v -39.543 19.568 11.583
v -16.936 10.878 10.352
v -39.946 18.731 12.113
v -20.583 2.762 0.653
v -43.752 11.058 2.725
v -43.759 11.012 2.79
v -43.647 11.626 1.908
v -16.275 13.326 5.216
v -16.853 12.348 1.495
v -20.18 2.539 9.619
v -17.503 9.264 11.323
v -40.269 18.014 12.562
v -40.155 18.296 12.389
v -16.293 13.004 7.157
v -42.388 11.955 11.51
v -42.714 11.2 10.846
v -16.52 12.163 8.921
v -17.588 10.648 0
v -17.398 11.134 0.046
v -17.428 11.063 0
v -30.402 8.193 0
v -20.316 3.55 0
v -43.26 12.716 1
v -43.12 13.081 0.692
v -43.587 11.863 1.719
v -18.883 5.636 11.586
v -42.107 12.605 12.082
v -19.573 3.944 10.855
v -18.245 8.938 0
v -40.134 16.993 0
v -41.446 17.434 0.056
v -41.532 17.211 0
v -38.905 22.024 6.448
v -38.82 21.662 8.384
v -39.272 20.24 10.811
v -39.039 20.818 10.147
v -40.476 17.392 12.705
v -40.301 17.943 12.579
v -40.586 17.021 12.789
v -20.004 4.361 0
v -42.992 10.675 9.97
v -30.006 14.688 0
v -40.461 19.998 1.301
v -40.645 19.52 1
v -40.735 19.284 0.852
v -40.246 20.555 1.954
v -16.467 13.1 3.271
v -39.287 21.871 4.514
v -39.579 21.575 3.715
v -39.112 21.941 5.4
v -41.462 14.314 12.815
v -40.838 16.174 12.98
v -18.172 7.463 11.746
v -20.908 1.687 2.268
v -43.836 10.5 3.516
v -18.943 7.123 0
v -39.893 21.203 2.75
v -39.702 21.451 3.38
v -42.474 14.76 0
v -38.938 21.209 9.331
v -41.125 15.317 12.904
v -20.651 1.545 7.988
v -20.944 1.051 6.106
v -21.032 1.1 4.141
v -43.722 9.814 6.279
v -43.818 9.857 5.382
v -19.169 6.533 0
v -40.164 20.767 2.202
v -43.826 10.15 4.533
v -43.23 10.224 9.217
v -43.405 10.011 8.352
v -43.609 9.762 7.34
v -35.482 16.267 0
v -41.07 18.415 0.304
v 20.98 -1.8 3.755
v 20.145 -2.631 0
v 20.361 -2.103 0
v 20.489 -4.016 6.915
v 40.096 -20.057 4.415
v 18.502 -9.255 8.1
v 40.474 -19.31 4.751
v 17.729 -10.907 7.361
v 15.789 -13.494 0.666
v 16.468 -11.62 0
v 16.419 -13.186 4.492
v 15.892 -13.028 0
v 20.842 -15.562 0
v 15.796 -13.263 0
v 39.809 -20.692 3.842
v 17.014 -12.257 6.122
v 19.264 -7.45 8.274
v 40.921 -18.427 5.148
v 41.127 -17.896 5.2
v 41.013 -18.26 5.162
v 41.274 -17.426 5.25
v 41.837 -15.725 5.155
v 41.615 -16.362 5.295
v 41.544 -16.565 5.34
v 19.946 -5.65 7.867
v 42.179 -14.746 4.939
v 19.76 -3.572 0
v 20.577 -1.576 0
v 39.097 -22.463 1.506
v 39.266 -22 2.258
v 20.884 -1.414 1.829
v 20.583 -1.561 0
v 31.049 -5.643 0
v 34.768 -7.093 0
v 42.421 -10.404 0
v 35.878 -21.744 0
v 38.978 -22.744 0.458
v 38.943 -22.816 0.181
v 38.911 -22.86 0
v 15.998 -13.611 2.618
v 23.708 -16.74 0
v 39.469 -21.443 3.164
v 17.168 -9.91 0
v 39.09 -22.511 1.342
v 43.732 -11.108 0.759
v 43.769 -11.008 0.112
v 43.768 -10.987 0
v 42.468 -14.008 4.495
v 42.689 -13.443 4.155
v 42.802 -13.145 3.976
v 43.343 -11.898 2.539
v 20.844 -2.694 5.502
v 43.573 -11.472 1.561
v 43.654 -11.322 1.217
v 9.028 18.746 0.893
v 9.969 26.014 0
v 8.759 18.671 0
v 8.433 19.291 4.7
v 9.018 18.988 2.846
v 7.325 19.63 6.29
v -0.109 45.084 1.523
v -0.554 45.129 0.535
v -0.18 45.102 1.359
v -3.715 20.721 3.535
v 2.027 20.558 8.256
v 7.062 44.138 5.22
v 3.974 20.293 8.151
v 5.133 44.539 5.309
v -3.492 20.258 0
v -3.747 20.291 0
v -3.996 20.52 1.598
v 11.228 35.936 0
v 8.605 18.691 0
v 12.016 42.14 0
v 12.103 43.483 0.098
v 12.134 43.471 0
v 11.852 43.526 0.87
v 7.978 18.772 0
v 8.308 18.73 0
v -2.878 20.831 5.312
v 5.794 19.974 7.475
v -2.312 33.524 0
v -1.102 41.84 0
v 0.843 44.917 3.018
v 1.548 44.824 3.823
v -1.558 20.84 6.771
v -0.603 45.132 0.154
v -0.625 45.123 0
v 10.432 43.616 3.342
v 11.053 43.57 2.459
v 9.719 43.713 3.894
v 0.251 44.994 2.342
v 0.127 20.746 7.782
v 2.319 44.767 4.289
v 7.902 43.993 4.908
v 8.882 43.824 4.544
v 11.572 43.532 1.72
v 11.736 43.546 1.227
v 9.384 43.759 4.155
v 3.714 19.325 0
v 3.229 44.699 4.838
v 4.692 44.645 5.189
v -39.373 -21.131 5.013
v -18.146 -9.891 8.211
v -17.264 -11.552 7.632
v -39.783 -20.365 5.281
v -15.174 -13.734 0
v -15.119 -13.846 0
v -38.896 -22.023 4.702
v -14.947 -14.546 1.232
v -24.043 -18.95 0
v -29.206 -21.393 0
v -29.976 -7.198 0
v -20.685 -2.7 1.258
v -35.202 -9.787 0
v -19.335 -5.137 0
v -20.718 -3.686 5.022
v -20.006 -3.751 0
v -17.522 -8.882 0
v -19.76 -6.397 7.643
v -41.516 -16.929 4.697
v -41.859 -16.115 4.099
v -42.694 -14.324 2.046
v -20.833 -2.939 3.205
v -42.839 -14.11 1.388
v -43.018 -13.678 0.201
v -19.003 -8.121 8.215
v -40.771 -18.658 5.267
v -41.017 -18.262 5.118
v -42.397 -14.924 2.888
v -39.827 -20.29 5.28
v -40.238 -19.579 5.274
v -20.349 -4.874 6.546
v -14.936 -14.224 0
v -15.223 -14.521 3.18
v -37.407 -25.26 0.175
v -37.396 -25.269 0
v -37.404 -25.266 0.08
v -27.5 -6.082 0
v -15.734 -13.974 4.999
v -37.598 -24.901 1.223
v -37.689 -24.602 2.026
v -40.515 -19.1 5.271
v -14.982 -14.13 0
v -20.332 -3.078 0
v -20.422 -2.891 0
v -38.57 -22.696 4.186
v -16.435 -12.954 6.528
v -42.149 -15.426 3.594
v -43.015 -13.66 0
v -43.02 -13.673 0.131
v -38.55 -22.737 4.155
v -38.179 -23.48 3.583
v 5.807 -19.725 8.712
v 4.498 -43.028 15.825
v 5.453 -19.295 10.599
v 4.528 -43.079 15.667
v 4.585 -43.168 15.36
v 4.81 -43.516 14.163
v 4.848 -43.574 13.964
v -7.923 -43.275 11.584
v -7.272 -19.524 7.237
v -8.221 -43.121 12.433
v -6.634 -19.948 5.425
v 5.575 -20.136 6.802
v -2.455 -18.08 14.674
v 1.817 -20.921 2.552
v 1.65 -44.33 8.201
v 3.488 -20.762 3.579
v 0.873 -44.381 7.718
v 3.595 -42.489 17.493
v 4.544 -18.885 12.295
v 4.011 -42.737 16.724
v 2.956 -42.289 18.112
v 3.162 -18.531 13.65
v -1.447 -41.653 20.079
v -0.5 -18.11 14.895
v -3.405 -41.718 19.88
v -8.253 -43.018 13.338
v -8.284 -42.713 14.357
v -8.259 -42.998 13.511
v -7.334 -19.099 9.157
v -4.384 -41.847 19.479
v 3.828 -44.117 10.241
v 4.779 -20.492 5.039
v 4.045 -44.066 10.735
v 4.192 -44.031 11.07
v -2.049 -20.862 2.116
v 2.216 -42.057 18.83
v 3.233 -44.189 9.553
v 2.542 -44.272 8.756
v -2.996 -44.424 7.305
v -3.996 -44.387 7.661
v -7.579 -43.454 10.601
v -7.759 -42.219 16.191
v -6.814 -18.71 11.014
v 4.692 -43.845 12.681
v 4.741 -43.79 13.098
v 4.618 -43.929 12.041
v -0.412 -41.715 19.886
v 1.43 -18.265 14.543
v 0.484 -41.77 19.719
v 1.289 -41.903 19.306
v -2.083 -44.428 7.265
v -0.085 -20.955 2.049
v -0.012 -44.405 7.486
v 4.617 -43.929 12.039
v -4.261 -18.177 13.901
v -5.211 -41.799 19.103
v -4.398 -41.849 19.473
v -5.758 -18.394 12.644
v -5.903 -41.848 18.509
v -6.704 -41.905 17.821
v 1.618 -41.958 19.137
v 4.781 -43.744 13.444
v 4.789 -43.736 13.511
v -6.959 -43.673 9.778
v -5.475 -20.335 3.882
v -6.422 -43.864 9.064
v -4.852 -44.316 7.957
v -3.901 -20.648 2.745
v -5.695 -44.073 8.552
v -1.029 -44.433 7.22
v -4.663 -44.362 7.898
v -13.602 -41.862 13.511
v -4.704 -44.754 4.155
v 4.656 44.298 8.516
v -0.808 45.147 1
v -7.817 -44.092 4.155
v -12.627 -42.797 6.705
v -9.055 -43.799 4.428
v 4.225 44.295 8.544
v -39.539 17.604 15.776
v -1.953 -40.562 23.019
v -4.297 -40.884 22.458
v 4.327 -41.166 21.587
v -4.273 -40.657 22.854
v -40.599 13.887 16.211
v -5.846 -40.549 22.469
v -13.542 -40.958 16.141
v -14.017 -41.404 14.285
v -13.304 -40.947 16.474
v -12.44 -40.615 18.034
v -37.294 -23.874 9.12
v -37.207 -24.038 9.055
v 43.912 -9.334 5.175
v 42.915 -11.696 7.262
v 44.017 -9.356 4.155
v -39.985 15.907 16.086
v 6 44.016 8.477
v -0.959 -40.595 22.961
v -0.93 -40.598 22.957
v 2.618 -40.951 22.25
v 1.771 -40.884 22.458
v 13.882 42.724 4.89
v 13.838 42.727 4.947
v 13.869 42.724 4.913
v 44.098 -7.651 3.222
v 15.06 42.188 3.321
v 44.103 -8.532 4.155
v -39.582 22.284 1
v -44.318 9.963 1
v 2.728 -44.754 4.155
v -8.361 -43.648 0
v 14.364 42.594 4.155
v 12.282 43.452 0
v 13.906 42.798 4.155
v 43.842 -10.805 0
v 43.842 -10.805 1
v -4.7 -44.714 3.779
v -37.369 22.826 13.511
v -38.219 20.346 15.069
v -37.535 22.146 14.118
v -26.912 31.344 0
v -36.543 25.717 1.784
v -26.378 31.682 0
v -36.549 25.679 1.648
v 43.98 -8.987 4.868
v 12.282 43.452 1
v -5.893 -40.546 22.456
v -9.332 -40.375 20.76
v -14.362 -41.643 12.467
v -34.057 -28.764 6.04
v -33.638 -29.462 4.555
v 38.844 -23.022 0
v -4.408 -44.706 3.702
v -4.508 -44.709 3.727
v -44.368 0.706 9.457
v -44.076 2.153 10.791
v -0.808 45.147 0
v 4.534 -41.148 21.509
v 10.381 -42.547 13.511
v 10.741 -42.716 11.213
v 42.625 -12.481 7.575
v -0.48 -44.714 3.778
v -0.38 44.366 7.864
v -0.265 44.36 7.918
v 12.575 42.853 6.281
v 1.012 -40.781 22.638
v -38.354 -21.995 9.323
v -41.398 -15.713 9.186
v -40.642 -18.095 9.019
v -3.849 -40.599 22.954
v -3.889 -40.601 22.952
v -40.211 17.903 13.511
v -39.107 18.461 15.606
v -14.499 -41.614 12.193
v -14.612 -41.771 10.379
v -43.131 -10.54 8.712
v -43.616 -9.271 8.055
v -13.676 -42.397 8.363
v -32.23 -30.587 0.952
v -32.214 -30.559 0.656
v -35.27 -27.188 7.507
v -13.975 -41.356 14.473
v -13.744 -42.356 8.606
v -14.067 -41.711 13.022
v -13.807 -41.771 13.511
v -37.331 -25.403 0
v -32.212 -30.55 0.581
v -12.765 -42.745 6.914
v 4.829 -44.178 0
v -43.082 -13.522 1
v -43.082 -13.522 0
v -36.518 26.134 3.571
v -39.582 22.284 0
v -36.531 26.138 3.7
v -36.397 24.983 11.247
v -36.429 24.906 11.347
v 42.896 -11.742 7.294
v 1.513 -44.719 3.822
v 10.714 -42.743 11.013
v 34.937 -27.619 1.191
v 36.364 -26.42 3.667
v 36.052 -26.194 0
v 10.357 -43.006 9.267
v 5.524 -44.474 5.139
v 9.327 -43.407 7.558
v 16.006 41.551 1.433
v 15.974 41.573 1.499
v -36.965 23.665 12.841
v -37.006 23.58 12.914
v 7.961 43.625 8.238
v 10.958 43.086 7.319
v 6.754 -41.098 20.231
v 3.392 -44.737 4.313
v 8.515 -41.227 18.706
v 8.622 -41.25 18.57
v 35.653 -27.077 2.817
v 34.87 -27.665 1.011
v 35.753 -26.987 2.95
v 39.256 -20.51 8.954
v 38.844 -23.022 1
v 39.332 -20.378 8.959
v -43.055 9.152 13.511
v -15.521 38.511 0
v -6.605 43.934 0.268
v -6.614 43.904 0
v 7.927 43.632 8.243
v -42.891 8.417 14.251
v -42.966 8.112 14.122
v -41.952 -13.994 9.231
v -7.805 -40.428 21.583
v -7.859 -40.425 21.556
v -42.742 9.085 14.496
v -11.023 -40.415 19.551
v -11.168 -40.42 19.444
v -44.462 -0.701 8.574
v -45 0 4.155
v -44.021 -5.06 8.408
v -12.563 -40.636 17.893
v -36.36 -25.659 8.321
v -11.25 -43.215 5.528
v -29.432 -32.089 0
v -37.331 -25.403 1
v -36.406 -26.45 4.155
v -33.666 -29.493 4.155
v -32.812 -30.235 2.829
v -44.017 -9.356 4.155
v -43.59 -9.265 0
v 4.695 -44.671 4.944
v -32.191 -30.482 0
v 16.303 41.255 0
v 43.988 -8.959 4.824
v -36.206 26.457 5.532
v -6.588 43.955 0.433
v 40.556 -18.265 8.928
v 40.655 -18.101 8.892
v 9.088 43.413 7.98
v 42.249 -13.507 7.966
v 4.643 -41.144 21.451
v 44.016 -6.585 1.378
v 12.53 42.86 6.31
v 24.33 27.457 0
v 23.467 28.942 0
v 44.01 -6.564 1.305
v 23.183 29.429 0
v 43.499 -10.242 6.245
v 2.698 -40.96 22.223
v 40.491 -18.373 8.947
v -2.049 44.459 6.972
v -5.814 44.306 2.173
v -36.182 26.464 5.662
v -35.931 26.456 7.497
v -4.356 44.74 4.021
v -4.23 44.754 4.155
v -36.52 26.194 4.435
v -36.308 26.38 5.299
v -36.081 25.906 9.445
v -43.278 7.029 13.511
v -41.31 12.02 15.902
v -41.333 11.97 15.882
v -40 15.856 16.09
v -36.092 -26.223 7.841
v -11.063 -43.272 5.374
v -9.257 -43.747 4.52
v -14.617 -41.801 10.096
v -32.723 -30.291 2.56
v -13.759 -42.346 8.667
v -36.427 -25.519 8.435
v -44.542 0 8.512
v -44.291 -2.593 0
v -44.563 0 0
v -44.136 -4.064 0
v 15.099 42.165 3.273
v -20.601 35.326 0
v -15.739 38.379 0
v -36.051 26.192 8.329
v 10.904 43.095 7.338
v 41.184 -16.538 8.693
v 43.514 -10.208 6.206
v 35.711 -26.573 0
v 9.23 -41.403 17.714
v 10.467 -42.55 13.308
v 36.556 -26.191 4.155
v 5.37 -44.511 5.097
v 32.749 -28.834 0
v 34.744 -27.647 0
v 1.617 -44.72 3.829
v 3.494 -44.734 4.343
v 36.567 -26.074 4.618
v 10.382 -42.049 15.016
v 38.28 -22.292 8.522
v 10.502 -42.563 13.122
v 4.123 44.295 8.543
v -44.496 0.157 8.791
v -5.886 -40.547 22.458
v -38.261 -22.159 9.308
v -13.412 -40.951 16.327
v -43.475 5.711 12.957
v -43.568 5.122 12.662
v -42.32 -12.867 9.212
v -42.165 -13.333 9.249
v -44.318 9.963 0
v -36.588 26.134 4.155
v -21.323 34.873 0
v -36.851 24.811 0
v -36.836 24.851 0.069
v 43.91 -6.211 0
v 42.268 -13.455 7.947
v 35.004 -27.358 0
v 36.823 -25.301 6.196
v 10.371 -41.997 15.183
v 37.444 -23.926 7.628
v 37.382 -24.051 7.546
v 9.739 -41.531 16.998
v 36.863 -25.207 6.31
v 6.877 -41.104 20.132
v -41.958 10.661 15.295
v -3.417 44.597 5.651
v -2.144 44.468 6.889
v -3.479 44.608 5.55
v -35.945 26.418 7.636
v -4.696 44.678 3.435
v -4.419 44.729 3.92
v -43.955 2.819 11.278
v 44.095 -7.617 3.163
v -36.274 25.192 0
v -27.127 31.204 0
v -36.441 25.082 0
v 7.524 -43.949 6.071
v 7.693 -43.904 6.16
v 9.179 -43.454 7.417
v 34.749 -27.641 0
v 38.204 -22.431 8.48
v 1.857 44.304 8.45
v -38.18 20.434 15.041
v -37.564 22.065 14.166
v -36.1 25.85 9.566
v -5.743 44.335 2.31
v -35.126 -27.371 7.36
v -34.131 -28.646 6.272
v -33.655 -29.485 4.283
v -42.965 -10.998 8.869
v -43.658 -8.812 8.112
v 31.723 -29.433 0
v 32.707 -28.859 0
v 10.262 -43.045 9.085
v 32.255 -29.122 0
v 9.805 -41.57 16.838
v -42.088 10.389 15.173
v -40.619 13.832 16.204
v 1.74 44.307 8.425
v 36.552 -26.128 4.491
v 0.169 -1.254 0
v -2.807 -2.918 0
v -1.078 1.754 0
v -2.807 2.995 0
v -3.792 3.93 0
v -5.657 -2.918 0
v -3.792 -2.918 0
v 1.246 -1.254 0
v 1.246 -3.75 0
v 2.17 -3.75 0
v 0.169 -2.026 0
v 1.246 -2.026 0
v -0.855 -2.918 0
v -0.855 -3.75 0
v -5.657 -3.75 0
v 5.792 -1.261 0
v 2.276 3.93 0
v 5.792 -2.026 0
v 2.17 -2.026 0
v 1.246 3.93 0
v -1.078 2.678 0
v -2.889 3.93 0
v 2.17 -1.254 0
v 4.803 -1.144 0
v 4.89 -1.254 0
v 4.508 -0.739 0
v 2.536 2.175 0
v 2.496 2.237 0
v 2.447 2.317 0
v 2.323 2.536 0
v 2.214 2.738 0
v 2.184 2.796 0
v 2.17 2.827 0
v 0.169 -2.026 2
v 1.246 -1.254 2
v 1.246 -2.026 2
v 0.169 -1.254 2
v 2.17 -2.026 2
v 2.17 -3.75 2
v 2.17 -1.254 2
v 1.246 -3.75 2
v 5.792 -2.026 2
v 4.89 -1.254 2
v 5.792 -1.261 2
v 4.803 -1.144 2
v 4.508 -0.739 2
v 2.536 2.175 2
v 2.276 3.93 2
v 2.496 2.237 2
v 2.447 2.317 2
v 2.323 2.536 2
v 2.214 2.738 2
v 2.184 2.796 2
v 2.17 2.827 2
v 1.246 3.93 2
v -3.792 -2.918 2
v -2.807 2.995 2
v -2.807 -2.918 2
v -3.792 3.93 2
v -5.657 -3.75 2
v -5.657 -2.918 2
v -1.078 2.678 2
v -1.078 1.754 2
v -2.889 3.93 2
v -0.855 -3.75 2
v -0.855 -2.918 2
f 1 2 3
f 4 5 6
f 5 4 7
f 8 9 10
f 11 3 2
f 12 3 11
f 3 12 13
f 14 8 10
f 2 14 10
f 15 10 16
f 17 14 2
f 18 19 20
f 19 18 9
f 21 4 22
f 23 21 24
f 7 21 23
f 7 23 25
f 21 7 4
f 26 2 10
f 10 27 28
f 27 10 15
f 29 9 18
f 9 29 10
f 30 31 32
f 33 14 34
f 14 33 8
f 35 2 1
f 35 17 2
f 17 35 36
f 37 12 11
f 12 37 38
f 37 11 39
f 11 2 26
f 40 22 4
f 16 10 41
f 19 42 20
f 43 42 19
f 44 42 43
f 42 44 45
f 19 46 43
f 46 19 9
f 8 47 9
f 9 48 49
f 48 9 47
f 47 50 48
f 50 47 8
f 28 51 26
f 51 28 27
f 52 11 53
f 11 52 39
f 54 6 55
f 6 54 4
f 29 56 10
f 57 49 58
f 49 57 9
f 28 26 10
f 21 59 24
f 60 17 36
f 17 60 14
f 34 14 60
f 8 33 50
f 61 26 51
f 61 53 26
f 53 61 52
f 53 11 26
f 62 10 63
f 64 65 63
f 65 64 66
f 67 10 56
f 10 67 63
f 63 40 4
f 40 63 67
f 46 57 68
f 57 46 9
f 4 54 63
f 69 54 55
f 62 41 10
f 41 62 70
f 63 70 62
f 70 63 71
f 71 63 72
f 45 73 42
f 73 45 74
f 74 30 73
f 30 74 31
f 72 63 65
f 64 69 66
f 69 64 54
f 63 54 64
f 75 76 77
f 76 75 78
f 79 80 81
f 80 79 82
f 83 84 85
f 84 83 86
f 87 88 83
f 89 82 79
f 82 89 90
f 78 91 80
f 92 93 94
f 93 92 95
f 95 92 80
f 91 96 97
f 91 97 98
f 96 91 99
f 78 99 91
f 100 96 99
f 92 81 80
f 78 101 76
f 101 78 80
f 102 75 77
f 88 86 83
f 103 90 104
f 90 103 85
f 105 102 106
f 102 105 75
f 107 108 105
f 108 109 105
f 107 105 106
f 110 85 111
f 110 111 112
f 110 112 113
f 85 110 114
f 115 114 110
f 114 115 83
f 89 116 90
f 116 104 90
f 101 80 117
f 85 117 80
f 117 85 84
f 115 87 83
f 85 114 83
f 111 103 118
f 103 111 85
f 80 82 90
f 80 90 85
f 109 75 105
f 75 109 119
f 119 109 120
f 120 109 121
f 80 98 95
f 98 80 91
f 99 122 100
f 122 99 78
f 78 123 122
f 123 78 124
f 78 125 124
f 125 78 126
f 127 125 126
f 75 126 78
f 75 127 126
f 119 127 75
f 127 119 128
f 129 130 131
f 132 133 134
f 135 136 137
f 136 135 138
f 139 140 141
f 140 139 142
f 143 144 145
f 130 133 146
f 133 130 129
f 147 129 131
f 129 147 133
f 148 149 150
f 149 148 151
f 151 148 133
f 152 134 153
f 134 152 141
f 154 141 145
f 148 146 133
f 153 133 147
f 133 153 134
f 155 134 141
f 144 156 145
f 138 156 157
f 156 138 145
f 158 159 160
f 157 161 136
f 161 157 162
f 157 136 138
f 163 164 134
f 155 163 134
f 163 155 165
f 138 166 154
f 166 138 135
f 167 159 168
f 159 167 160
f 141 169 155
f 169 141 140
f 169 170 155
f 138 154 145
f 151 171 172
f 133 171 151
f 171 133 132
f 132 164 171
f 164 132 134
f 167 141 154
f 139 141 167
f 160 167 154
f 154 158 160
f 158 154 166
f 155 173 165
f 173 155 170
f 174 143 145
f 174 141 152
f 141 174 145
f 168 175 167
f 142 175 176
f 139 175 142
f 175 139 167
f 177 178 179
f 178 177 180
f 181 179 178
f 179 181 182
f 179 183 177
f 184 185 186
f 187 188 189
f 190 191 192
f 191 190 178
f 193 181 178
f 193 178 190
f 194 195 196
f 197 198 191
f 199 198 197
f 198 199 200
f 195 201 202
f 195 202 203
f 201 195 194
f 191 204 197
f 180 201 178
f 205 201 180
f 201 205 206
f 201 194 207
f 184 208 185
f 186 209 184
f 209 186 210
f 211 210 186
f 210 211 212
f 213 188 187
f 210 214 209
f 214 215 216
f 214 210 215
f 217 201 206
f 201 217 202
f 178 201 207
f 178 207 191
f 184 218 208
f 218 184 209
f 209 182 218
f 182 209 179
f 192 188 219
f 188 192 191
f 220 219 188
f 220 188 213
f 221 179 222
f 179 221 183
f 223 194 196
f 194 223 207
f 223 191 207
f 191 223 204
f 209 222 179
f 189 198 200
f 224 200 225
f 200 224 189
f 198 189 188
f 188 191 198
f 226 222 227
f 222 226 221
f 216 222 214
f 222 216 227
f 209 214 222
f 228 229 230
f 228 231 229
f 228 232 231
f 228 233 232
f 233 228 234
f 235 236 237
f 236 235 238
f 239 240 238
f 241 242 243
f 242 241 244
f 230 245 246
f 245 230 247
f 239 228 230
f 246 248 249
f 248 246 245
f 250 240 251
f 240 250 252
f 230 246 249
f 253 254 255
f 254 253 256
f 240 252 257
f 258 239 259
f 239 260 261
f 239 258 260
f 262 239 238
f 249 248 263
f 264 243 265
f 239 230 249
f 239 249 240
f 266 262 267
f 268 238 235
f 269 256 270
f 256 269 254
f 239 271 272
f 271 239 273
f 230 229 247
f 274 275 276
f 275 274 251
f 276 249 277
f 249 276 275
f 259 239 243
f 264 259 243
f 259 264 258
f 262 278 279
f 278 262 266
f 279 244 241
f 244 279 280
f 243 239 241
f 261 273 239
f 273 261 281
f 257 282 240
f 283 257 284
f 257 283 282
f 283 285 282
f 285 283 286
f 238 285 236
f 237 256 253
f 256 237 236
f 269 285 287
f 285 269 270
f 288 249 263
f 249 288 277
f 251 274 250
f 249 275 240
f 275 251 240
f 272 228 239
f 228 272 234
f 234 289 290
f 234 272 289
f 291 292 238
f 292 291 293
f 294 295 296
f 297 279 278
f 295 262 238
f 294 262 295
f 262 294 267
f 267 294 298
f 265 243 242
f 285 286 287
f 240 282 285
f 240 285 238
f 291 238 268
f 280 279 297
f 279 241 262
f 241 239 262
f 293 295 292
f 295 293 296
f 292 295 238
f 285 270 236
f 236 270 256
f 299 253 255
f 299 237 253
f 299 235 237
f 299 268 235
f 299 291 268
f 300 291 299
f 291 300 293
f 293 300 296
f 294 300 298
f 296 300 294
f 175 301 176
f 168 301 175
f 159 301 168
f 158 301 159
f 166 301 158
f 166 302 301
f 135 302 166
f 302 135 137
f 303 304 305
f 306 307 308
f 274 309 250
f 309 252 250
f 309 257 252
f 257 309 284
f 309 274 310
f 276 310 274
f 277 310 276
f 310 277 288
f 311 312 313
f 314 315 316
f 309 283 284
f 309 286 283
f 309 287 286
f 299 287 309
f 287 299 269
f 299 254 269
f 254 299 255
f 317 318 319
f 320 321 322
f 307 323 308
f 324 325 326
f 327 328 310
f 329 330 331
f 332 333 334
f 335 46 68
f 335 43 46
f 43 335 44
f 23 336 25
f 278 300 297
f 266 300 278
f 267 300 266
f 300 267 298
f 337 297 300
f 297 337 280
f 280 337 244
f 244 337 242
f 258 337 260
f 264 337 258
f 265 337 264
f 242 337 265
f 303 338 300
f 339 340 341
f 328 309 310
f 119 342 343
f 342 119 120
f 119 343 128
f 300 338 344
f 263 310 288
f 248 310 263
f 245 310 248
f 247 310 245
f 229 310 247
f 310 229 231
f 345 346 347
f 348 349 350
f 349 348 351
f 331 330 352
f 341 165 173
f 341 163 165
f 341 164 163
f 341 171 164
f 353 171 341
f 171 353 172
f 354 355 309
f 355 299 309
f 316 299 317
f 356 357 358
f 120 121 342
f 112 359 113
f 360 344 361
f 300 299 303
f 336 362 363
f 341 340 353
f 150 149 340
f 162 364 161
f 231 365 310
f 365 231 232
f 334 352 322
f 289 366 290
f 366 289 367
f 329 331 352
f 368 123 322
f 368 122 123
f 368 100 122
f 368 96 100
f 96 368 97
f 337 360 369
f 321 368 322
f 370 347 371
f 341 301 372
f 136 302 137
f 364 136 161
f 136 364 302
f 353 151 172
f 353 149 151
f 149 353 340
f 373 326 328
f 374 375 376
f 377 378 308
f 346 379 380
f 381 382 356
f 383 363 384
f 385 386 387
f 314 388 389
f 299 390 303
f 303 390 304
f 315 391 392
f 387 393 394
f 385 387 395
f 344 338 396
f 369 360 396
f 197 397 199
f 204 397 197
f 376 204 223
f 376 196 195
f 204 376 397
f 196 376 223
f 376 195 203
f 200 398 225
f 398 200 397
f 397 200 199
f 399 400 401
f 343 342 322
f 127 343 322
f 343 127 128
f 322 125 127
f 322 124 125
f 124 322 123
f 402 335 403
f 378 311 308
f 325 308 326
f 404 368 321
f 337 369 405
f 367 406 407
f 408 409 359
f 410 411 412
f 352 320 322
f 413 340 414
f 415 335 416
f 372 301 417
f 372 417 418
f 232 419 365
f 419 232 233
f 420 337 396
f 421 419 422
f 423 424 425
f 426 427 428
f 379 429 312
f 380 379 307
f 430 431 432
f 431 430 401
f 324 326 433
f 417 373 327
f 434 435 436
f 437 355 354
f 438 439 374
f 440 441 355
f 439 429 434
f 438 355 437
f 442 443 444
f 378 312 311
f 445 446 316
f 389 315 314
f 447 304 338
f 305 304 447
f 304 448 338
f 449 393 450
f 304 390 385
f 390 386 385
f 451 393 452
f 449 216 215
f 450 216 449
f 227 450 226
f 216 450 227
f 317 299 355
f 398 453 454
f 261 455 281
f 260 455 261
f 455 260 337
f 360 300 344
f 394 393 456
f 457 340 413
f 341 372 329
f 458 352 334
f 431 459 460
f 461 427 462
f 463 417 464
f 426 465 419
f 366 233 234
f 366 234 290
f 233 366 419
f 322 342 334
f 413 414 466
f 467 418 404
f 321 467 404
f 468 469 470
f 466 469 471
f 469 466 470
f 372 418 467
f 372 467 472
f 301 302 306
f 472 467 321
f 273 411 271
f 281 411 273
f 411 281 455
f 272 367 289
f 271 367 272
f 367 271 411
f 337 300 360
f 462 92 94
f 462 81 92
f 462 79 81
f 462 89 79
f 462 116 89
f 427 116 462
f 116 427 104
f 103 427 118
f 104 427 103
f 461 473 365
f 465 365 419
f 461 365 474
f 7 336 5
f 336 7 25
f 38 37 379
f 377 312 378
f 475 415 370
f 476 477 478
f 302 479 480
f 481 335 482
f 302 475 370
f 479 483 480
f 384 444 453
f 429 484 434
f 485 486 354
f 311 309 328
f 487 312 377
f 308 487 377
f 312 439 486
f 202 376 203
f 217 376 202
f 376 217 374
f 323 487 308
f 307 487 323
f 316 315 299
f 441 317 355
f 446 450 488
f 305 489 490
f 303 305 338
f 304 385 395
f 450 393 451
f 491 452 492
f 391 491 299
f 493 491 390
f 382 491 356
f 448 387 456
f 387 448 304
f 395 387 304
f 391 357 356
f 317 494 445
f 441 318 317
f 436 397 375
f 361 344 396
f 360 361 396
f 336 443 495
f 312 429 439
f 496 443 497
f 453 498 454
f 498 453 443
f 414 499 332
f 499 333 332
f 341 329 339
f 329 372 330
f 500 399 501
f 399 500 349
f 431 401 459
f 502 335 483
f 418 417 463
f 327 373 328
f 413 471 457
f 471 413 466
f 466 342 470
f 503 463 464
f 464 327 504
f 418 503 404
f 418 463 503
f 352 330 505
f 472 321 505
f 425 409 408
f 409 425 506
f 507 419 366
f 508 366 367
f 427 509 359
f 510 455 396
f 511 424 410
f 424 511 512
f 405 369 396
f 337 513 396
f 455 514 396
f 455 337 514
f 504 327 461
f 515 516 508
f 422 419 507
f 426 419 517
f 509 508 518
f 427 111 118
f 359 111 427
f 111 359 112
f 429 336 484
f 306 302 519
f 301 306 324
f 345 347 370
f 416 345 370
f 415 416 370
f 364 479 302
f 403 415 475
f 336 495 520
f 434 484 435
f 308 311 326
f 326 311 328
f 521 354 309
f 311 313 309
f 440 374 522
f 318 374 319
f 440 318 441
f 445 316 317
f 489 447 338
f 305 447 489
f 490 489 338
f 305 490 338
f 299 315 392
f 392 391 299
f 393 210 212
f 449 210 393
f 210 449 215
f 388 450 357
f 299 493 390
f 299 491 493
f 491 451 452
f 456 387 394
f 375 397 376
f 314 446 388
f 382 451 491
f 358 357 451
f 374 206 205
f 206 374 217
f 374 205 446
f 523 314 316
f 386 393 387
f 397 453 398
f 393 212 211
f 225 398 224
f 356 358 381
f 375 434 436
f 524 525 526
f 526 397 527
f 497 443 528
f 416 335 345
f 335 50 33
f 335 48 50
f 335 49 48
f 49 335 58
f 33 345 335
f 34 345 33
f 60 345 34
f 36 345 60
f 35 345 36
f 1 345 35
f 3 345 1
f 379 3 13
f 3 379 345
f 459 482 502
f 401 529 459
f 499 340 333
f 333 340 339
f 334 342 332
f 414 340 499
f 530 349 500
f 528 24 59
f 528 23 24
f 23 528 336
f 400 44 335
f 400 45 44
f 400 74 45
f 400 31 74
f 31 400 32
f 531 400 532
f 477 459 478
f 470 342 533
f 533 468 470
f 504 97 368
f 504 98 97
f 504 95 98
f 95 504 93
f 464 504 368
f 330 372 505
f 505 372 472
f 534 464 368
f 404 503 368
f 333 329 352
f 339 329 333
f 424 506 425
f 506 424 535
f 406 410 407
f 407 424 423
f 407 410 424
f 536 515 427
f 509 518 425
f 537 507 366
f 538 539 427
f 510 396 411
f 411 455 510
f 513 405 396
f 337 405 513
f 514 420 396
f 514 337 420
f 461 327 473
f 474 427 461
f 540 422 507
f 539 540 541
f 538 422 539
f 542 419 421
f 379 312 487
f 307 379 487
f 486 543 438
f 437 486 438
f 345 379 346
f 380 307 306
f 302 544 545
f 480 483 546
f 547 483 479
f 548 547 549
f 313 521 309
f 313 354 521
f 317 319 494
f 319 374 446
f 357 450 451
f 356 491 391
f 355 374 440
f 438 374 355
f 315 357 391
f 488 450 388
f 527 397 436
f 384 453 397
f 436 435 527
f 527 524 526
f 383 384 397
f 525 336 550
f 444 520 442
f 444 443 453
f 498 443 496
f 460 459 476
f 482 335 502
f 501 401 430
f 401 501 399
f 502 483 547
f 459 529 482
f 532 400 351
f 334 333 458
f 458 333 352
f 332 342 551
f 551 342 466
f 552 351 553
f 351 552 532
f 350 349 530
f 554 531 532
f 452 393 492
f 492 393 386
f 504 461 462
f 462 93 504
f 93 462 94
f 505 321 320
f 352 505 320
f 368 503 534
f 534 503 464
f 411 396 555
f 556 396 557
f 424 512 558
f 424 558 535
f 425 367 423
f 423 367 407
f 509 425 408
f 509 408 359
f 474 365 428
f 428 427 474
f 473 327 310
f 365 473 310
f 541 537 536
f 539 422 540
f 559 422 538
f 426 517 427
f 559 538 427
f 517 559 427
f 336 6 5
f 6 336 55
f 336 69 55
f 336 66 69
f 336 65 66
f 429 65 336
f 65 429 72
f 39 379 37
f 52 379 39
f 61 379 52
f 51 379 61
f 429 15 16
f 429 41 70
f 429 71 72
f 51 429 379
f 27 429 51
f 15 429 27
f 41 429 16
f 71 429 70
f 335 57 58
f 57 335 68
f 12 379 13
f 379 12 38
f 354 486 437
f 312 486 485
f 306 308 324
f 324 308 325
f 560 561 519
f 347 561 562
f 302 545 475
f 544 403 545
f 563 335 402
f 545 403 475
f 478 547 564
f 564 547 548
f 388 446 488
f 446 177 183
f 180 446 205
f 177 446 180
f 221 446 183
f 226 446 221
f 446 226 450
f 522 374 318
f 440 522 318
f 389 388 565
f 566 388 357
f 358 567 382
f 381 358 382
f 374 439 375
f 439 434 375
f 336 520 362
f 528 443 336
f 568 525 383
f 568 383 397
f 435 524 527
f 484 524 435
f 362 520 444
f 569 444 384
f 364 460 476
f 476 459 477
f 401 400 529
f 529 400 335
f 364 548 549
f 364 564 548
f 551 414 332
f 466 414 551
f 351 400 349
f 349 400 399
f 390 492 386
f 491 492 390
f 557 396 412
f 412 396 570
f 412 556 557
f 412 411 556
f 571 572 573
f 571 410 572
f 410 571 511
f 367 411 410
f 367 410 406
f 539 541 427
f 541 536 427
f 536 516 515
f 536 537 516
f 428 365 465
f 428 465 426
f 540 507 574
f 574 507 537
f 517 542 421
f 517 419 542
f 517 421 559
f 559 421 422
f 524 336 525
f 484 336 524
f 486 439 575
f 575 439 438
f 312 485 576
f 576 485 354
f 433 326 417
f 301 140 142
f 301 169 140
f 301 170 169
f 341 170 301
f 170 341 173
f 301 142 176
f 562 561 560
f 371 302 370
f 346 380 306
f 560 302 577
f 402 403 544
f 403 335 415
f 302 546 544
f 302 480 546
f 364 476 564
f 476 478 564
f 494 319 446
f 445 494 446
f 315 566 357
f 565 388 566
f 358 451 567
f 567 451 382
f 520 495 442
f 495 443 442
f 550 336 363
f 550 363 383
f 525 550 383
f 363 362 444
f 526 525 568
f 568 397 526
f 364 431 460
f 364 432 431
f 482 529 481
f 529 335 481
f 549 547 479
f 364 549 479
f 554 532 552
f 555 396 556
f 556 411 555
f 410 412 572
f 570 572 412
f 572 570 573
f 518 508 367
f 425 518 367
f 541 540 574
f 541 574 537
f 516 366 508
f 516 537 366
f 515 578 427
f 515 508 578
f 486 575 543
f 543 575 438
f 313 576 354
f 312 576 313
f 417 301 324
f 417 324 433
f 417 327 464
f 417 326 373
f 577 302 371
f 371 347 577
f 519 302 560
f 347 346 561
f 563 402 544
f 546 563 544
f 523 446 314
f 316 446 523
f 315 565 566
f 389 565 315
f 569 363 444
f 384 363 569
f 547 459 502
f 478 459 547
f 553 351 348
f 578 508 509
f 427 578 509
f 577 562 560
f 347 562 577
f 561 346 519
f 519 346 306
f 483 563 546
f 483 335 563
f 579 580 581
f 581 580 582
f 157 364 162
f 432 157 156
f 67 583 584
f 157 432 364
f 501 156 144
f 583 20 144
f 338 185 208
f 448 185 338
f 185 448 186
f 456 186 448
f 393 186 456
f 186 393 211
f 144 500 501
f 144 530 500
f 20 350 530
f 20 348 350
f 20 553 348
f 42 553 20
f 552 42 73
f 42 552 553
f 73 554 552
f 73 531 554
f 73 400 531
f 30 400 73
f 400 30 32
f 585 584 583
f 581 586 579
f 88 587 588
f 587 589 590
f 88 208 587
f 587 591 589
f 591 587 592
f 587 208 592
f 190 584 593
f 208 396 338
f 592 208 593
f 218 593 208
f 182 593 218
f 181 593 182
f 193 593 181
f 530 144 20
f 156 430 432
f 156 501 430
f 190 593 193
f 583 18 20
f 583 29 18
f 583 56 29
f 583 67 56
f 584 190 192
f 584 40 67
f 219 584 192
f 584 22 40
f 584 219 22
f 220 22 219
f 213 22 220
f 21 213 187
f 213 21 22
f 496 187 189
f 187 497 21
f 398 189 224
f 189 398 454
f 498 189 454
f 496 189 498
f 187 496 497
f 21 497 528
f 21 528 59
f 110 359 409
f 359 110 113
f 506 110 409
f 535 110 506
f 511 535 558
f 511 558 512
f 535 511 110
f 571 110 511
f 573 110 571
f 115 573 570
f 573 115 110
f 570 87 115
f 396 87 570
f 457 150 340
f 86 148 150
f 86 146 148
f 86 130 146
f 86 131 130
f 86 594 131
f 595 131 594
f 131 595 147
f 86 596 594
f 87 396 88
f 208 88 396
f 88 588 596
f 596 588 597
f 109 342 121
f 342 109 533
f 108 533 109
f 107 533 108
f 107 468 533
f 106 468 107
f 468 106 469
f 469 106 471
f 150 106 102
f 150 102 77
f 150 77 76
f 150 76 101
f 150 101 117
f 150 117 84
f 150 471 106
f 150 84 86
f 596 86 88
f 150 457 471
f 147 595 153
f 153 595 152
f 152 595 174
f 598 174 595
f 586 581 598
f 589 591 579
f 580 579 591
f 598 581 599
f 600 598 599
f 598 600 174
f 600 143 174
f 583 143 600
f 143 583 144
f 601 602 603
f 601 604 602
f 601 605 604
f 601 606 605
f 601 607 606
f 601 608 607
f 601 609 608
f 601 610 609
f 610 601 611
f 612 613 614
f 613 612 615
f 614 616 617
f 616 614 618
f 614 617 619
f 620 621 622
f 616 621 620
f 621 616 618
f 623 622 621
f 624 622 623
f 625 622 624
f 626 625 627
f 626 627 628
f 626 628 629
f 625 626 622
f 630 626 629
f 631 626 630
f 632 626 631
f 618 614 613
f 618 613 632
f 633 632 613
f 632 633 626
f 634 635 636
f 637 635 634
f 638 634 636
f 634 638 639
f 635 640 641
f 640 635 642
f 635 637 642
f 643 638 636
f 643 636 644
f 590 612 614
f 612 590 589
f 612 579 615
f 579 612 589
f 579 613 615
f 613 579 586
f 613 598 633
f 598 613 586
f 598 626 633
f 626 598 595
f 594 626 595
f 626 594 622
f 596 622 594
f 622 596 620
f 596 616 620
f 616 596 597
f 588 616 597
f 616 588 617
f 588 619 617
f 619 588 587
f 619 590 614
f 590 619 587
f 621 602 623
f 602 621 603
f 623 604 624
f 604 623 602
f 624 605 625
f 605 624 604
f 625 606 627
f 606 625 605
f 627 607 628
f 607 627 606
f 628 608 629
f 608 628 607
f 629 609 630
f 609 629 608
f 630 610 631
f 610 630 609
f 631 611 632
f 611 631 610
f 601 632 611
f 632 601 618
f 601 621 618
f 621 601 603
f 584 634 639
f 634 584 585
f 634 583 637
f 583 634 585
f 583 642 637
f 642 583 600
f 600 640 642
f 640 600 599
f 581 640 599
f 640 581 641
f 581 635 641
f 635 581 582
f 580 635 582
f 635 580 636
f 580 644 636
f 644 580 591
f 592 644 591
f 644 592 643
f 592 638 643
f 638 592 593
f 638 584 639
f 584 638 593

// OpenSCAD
difference() {
	difference() {
		difference() {
			hull() {
				union() {
					union() {
						rotate(a = 158.9757745088, v = [0, 0, 1]) {
							translate(v = [0, -6.6000000000, 0]) {
								cube(size = [44.9420033779, 13.2000000000, 1]);
							}
						}
						rotate(a = -22.2493543223, v = [0, 0, 1]) {
							translate(v = [0, -6.6000000000, 0]) {
								cube(size = [44.6693437695, 13.2000000000, 1]);
							}
						}
						rotate(a = 82.6209701417, v = [0, 0, 1]) {
							translate(v = [0, -6.6000000000, 0]) {
								cube(size = [44.6693440816, 13.2000000000, 1]);
							}
						}
						rotate(a = -154.1696479987, v = [0, 0, 1]) {
							translate(v = [0, -6.6000000000, 0]) {
								cube(size = [44.6693427443, 13.2000000000, 1]);
							}
						}
						rotate(a = -92.3029503492, v = [0, 0, 1]) {
							translate(v = [0, -6.6000000000, 0]) {
								cube(size = [43.9486521465, 13.2000000000, 1]);
							}
						}
					}
					translate(v = [0, 0, 4.1547973372]) {
						intersection() {
							hull() {
								rotate(a = 87.0907940791, v = [-0.3583002199, -0.9322258546, 0.0000012905]) {
									cylinder(h = 45, r = 9.6000000000);
								}
								rotate(a = 96.9499880748, v = [0.3758558645, 0.9187440666, -0.0000012946]) {
									cylinder(h = 45, r = 9.6000000000);
								}
								rotate(a = 96.9499519459, v = [-0.9844313003, 0.1274890479, 0.0000008569]) {
									cylinder(h = 45, r = 9.6000000000);
								}
								rotate(a = 96.9501067328, v = [0.4325062986, -0.8934741714, 0.0000004610]) {
									cylinder(h = 45, r = 9.6000000000);
								}
								rotate(a = 77.5905739287, v = [0.9758481264, -0.0392446466, -0.0000009366]) {
									cylinder(h = 45, r = 9.6000000000);
								}
							}
							sphere(r = 45);
						}
					}
				}
			}
			translate(v = [0, 0, 4.1547973372]) {
				rotate(a = 87.0907940791, v = [-0.3583002199, -0.9322258546, 0.0000012905]) {
					translate(v = [0, 0, 20]) {
						cylinder(h = 45, r = 6.6000000000);
					}
				}
				rotate(a = 96.9499880748, v = [0.3758558645, 0.9187440666, -0.0000012946]) {
					translate(v = [0, 0, 20]) {
						cylinder(h = 45, r = 6.6000000000);
					}
				}
				rotate(a = 96.9499519459, v = [-0.9844313003, 0.1274890479, 0.0000008569]) {
					translate(v = [0, 0, 20]) {
						cylinder(h = 45, r = 6.6000000000);
					}
				}
				rotate(a = 96.9501067328, v = [0.4325062986, -0.8934741714, 0.0000004610]) {
					translate(v = [0, 0, 20]) {
						cylinder(h = 45, r = 6.6000000000);
					}
				}
				rotate(a = 77.5905739287, v = [0.9758481264, -0.0392446466, -0.0000009366]) {
					translate(v = [0, 0, 20]) {
						cylinder(h = 45, r = 6.6000000000);
					}
				}
			}
		}
		translate(v = [-100, -100, -100]) {
			cube(size = [200, 200, 100]);
		}
	}
	translate(v = [0, 0, 2]) {
		rotate(a = 180, v = [0, 1, 0]) {
			linear_extrude(height = 3) {
				text(halign = "center", size = 8, text = "41", valign = "center");
			}
		}
	}
}
